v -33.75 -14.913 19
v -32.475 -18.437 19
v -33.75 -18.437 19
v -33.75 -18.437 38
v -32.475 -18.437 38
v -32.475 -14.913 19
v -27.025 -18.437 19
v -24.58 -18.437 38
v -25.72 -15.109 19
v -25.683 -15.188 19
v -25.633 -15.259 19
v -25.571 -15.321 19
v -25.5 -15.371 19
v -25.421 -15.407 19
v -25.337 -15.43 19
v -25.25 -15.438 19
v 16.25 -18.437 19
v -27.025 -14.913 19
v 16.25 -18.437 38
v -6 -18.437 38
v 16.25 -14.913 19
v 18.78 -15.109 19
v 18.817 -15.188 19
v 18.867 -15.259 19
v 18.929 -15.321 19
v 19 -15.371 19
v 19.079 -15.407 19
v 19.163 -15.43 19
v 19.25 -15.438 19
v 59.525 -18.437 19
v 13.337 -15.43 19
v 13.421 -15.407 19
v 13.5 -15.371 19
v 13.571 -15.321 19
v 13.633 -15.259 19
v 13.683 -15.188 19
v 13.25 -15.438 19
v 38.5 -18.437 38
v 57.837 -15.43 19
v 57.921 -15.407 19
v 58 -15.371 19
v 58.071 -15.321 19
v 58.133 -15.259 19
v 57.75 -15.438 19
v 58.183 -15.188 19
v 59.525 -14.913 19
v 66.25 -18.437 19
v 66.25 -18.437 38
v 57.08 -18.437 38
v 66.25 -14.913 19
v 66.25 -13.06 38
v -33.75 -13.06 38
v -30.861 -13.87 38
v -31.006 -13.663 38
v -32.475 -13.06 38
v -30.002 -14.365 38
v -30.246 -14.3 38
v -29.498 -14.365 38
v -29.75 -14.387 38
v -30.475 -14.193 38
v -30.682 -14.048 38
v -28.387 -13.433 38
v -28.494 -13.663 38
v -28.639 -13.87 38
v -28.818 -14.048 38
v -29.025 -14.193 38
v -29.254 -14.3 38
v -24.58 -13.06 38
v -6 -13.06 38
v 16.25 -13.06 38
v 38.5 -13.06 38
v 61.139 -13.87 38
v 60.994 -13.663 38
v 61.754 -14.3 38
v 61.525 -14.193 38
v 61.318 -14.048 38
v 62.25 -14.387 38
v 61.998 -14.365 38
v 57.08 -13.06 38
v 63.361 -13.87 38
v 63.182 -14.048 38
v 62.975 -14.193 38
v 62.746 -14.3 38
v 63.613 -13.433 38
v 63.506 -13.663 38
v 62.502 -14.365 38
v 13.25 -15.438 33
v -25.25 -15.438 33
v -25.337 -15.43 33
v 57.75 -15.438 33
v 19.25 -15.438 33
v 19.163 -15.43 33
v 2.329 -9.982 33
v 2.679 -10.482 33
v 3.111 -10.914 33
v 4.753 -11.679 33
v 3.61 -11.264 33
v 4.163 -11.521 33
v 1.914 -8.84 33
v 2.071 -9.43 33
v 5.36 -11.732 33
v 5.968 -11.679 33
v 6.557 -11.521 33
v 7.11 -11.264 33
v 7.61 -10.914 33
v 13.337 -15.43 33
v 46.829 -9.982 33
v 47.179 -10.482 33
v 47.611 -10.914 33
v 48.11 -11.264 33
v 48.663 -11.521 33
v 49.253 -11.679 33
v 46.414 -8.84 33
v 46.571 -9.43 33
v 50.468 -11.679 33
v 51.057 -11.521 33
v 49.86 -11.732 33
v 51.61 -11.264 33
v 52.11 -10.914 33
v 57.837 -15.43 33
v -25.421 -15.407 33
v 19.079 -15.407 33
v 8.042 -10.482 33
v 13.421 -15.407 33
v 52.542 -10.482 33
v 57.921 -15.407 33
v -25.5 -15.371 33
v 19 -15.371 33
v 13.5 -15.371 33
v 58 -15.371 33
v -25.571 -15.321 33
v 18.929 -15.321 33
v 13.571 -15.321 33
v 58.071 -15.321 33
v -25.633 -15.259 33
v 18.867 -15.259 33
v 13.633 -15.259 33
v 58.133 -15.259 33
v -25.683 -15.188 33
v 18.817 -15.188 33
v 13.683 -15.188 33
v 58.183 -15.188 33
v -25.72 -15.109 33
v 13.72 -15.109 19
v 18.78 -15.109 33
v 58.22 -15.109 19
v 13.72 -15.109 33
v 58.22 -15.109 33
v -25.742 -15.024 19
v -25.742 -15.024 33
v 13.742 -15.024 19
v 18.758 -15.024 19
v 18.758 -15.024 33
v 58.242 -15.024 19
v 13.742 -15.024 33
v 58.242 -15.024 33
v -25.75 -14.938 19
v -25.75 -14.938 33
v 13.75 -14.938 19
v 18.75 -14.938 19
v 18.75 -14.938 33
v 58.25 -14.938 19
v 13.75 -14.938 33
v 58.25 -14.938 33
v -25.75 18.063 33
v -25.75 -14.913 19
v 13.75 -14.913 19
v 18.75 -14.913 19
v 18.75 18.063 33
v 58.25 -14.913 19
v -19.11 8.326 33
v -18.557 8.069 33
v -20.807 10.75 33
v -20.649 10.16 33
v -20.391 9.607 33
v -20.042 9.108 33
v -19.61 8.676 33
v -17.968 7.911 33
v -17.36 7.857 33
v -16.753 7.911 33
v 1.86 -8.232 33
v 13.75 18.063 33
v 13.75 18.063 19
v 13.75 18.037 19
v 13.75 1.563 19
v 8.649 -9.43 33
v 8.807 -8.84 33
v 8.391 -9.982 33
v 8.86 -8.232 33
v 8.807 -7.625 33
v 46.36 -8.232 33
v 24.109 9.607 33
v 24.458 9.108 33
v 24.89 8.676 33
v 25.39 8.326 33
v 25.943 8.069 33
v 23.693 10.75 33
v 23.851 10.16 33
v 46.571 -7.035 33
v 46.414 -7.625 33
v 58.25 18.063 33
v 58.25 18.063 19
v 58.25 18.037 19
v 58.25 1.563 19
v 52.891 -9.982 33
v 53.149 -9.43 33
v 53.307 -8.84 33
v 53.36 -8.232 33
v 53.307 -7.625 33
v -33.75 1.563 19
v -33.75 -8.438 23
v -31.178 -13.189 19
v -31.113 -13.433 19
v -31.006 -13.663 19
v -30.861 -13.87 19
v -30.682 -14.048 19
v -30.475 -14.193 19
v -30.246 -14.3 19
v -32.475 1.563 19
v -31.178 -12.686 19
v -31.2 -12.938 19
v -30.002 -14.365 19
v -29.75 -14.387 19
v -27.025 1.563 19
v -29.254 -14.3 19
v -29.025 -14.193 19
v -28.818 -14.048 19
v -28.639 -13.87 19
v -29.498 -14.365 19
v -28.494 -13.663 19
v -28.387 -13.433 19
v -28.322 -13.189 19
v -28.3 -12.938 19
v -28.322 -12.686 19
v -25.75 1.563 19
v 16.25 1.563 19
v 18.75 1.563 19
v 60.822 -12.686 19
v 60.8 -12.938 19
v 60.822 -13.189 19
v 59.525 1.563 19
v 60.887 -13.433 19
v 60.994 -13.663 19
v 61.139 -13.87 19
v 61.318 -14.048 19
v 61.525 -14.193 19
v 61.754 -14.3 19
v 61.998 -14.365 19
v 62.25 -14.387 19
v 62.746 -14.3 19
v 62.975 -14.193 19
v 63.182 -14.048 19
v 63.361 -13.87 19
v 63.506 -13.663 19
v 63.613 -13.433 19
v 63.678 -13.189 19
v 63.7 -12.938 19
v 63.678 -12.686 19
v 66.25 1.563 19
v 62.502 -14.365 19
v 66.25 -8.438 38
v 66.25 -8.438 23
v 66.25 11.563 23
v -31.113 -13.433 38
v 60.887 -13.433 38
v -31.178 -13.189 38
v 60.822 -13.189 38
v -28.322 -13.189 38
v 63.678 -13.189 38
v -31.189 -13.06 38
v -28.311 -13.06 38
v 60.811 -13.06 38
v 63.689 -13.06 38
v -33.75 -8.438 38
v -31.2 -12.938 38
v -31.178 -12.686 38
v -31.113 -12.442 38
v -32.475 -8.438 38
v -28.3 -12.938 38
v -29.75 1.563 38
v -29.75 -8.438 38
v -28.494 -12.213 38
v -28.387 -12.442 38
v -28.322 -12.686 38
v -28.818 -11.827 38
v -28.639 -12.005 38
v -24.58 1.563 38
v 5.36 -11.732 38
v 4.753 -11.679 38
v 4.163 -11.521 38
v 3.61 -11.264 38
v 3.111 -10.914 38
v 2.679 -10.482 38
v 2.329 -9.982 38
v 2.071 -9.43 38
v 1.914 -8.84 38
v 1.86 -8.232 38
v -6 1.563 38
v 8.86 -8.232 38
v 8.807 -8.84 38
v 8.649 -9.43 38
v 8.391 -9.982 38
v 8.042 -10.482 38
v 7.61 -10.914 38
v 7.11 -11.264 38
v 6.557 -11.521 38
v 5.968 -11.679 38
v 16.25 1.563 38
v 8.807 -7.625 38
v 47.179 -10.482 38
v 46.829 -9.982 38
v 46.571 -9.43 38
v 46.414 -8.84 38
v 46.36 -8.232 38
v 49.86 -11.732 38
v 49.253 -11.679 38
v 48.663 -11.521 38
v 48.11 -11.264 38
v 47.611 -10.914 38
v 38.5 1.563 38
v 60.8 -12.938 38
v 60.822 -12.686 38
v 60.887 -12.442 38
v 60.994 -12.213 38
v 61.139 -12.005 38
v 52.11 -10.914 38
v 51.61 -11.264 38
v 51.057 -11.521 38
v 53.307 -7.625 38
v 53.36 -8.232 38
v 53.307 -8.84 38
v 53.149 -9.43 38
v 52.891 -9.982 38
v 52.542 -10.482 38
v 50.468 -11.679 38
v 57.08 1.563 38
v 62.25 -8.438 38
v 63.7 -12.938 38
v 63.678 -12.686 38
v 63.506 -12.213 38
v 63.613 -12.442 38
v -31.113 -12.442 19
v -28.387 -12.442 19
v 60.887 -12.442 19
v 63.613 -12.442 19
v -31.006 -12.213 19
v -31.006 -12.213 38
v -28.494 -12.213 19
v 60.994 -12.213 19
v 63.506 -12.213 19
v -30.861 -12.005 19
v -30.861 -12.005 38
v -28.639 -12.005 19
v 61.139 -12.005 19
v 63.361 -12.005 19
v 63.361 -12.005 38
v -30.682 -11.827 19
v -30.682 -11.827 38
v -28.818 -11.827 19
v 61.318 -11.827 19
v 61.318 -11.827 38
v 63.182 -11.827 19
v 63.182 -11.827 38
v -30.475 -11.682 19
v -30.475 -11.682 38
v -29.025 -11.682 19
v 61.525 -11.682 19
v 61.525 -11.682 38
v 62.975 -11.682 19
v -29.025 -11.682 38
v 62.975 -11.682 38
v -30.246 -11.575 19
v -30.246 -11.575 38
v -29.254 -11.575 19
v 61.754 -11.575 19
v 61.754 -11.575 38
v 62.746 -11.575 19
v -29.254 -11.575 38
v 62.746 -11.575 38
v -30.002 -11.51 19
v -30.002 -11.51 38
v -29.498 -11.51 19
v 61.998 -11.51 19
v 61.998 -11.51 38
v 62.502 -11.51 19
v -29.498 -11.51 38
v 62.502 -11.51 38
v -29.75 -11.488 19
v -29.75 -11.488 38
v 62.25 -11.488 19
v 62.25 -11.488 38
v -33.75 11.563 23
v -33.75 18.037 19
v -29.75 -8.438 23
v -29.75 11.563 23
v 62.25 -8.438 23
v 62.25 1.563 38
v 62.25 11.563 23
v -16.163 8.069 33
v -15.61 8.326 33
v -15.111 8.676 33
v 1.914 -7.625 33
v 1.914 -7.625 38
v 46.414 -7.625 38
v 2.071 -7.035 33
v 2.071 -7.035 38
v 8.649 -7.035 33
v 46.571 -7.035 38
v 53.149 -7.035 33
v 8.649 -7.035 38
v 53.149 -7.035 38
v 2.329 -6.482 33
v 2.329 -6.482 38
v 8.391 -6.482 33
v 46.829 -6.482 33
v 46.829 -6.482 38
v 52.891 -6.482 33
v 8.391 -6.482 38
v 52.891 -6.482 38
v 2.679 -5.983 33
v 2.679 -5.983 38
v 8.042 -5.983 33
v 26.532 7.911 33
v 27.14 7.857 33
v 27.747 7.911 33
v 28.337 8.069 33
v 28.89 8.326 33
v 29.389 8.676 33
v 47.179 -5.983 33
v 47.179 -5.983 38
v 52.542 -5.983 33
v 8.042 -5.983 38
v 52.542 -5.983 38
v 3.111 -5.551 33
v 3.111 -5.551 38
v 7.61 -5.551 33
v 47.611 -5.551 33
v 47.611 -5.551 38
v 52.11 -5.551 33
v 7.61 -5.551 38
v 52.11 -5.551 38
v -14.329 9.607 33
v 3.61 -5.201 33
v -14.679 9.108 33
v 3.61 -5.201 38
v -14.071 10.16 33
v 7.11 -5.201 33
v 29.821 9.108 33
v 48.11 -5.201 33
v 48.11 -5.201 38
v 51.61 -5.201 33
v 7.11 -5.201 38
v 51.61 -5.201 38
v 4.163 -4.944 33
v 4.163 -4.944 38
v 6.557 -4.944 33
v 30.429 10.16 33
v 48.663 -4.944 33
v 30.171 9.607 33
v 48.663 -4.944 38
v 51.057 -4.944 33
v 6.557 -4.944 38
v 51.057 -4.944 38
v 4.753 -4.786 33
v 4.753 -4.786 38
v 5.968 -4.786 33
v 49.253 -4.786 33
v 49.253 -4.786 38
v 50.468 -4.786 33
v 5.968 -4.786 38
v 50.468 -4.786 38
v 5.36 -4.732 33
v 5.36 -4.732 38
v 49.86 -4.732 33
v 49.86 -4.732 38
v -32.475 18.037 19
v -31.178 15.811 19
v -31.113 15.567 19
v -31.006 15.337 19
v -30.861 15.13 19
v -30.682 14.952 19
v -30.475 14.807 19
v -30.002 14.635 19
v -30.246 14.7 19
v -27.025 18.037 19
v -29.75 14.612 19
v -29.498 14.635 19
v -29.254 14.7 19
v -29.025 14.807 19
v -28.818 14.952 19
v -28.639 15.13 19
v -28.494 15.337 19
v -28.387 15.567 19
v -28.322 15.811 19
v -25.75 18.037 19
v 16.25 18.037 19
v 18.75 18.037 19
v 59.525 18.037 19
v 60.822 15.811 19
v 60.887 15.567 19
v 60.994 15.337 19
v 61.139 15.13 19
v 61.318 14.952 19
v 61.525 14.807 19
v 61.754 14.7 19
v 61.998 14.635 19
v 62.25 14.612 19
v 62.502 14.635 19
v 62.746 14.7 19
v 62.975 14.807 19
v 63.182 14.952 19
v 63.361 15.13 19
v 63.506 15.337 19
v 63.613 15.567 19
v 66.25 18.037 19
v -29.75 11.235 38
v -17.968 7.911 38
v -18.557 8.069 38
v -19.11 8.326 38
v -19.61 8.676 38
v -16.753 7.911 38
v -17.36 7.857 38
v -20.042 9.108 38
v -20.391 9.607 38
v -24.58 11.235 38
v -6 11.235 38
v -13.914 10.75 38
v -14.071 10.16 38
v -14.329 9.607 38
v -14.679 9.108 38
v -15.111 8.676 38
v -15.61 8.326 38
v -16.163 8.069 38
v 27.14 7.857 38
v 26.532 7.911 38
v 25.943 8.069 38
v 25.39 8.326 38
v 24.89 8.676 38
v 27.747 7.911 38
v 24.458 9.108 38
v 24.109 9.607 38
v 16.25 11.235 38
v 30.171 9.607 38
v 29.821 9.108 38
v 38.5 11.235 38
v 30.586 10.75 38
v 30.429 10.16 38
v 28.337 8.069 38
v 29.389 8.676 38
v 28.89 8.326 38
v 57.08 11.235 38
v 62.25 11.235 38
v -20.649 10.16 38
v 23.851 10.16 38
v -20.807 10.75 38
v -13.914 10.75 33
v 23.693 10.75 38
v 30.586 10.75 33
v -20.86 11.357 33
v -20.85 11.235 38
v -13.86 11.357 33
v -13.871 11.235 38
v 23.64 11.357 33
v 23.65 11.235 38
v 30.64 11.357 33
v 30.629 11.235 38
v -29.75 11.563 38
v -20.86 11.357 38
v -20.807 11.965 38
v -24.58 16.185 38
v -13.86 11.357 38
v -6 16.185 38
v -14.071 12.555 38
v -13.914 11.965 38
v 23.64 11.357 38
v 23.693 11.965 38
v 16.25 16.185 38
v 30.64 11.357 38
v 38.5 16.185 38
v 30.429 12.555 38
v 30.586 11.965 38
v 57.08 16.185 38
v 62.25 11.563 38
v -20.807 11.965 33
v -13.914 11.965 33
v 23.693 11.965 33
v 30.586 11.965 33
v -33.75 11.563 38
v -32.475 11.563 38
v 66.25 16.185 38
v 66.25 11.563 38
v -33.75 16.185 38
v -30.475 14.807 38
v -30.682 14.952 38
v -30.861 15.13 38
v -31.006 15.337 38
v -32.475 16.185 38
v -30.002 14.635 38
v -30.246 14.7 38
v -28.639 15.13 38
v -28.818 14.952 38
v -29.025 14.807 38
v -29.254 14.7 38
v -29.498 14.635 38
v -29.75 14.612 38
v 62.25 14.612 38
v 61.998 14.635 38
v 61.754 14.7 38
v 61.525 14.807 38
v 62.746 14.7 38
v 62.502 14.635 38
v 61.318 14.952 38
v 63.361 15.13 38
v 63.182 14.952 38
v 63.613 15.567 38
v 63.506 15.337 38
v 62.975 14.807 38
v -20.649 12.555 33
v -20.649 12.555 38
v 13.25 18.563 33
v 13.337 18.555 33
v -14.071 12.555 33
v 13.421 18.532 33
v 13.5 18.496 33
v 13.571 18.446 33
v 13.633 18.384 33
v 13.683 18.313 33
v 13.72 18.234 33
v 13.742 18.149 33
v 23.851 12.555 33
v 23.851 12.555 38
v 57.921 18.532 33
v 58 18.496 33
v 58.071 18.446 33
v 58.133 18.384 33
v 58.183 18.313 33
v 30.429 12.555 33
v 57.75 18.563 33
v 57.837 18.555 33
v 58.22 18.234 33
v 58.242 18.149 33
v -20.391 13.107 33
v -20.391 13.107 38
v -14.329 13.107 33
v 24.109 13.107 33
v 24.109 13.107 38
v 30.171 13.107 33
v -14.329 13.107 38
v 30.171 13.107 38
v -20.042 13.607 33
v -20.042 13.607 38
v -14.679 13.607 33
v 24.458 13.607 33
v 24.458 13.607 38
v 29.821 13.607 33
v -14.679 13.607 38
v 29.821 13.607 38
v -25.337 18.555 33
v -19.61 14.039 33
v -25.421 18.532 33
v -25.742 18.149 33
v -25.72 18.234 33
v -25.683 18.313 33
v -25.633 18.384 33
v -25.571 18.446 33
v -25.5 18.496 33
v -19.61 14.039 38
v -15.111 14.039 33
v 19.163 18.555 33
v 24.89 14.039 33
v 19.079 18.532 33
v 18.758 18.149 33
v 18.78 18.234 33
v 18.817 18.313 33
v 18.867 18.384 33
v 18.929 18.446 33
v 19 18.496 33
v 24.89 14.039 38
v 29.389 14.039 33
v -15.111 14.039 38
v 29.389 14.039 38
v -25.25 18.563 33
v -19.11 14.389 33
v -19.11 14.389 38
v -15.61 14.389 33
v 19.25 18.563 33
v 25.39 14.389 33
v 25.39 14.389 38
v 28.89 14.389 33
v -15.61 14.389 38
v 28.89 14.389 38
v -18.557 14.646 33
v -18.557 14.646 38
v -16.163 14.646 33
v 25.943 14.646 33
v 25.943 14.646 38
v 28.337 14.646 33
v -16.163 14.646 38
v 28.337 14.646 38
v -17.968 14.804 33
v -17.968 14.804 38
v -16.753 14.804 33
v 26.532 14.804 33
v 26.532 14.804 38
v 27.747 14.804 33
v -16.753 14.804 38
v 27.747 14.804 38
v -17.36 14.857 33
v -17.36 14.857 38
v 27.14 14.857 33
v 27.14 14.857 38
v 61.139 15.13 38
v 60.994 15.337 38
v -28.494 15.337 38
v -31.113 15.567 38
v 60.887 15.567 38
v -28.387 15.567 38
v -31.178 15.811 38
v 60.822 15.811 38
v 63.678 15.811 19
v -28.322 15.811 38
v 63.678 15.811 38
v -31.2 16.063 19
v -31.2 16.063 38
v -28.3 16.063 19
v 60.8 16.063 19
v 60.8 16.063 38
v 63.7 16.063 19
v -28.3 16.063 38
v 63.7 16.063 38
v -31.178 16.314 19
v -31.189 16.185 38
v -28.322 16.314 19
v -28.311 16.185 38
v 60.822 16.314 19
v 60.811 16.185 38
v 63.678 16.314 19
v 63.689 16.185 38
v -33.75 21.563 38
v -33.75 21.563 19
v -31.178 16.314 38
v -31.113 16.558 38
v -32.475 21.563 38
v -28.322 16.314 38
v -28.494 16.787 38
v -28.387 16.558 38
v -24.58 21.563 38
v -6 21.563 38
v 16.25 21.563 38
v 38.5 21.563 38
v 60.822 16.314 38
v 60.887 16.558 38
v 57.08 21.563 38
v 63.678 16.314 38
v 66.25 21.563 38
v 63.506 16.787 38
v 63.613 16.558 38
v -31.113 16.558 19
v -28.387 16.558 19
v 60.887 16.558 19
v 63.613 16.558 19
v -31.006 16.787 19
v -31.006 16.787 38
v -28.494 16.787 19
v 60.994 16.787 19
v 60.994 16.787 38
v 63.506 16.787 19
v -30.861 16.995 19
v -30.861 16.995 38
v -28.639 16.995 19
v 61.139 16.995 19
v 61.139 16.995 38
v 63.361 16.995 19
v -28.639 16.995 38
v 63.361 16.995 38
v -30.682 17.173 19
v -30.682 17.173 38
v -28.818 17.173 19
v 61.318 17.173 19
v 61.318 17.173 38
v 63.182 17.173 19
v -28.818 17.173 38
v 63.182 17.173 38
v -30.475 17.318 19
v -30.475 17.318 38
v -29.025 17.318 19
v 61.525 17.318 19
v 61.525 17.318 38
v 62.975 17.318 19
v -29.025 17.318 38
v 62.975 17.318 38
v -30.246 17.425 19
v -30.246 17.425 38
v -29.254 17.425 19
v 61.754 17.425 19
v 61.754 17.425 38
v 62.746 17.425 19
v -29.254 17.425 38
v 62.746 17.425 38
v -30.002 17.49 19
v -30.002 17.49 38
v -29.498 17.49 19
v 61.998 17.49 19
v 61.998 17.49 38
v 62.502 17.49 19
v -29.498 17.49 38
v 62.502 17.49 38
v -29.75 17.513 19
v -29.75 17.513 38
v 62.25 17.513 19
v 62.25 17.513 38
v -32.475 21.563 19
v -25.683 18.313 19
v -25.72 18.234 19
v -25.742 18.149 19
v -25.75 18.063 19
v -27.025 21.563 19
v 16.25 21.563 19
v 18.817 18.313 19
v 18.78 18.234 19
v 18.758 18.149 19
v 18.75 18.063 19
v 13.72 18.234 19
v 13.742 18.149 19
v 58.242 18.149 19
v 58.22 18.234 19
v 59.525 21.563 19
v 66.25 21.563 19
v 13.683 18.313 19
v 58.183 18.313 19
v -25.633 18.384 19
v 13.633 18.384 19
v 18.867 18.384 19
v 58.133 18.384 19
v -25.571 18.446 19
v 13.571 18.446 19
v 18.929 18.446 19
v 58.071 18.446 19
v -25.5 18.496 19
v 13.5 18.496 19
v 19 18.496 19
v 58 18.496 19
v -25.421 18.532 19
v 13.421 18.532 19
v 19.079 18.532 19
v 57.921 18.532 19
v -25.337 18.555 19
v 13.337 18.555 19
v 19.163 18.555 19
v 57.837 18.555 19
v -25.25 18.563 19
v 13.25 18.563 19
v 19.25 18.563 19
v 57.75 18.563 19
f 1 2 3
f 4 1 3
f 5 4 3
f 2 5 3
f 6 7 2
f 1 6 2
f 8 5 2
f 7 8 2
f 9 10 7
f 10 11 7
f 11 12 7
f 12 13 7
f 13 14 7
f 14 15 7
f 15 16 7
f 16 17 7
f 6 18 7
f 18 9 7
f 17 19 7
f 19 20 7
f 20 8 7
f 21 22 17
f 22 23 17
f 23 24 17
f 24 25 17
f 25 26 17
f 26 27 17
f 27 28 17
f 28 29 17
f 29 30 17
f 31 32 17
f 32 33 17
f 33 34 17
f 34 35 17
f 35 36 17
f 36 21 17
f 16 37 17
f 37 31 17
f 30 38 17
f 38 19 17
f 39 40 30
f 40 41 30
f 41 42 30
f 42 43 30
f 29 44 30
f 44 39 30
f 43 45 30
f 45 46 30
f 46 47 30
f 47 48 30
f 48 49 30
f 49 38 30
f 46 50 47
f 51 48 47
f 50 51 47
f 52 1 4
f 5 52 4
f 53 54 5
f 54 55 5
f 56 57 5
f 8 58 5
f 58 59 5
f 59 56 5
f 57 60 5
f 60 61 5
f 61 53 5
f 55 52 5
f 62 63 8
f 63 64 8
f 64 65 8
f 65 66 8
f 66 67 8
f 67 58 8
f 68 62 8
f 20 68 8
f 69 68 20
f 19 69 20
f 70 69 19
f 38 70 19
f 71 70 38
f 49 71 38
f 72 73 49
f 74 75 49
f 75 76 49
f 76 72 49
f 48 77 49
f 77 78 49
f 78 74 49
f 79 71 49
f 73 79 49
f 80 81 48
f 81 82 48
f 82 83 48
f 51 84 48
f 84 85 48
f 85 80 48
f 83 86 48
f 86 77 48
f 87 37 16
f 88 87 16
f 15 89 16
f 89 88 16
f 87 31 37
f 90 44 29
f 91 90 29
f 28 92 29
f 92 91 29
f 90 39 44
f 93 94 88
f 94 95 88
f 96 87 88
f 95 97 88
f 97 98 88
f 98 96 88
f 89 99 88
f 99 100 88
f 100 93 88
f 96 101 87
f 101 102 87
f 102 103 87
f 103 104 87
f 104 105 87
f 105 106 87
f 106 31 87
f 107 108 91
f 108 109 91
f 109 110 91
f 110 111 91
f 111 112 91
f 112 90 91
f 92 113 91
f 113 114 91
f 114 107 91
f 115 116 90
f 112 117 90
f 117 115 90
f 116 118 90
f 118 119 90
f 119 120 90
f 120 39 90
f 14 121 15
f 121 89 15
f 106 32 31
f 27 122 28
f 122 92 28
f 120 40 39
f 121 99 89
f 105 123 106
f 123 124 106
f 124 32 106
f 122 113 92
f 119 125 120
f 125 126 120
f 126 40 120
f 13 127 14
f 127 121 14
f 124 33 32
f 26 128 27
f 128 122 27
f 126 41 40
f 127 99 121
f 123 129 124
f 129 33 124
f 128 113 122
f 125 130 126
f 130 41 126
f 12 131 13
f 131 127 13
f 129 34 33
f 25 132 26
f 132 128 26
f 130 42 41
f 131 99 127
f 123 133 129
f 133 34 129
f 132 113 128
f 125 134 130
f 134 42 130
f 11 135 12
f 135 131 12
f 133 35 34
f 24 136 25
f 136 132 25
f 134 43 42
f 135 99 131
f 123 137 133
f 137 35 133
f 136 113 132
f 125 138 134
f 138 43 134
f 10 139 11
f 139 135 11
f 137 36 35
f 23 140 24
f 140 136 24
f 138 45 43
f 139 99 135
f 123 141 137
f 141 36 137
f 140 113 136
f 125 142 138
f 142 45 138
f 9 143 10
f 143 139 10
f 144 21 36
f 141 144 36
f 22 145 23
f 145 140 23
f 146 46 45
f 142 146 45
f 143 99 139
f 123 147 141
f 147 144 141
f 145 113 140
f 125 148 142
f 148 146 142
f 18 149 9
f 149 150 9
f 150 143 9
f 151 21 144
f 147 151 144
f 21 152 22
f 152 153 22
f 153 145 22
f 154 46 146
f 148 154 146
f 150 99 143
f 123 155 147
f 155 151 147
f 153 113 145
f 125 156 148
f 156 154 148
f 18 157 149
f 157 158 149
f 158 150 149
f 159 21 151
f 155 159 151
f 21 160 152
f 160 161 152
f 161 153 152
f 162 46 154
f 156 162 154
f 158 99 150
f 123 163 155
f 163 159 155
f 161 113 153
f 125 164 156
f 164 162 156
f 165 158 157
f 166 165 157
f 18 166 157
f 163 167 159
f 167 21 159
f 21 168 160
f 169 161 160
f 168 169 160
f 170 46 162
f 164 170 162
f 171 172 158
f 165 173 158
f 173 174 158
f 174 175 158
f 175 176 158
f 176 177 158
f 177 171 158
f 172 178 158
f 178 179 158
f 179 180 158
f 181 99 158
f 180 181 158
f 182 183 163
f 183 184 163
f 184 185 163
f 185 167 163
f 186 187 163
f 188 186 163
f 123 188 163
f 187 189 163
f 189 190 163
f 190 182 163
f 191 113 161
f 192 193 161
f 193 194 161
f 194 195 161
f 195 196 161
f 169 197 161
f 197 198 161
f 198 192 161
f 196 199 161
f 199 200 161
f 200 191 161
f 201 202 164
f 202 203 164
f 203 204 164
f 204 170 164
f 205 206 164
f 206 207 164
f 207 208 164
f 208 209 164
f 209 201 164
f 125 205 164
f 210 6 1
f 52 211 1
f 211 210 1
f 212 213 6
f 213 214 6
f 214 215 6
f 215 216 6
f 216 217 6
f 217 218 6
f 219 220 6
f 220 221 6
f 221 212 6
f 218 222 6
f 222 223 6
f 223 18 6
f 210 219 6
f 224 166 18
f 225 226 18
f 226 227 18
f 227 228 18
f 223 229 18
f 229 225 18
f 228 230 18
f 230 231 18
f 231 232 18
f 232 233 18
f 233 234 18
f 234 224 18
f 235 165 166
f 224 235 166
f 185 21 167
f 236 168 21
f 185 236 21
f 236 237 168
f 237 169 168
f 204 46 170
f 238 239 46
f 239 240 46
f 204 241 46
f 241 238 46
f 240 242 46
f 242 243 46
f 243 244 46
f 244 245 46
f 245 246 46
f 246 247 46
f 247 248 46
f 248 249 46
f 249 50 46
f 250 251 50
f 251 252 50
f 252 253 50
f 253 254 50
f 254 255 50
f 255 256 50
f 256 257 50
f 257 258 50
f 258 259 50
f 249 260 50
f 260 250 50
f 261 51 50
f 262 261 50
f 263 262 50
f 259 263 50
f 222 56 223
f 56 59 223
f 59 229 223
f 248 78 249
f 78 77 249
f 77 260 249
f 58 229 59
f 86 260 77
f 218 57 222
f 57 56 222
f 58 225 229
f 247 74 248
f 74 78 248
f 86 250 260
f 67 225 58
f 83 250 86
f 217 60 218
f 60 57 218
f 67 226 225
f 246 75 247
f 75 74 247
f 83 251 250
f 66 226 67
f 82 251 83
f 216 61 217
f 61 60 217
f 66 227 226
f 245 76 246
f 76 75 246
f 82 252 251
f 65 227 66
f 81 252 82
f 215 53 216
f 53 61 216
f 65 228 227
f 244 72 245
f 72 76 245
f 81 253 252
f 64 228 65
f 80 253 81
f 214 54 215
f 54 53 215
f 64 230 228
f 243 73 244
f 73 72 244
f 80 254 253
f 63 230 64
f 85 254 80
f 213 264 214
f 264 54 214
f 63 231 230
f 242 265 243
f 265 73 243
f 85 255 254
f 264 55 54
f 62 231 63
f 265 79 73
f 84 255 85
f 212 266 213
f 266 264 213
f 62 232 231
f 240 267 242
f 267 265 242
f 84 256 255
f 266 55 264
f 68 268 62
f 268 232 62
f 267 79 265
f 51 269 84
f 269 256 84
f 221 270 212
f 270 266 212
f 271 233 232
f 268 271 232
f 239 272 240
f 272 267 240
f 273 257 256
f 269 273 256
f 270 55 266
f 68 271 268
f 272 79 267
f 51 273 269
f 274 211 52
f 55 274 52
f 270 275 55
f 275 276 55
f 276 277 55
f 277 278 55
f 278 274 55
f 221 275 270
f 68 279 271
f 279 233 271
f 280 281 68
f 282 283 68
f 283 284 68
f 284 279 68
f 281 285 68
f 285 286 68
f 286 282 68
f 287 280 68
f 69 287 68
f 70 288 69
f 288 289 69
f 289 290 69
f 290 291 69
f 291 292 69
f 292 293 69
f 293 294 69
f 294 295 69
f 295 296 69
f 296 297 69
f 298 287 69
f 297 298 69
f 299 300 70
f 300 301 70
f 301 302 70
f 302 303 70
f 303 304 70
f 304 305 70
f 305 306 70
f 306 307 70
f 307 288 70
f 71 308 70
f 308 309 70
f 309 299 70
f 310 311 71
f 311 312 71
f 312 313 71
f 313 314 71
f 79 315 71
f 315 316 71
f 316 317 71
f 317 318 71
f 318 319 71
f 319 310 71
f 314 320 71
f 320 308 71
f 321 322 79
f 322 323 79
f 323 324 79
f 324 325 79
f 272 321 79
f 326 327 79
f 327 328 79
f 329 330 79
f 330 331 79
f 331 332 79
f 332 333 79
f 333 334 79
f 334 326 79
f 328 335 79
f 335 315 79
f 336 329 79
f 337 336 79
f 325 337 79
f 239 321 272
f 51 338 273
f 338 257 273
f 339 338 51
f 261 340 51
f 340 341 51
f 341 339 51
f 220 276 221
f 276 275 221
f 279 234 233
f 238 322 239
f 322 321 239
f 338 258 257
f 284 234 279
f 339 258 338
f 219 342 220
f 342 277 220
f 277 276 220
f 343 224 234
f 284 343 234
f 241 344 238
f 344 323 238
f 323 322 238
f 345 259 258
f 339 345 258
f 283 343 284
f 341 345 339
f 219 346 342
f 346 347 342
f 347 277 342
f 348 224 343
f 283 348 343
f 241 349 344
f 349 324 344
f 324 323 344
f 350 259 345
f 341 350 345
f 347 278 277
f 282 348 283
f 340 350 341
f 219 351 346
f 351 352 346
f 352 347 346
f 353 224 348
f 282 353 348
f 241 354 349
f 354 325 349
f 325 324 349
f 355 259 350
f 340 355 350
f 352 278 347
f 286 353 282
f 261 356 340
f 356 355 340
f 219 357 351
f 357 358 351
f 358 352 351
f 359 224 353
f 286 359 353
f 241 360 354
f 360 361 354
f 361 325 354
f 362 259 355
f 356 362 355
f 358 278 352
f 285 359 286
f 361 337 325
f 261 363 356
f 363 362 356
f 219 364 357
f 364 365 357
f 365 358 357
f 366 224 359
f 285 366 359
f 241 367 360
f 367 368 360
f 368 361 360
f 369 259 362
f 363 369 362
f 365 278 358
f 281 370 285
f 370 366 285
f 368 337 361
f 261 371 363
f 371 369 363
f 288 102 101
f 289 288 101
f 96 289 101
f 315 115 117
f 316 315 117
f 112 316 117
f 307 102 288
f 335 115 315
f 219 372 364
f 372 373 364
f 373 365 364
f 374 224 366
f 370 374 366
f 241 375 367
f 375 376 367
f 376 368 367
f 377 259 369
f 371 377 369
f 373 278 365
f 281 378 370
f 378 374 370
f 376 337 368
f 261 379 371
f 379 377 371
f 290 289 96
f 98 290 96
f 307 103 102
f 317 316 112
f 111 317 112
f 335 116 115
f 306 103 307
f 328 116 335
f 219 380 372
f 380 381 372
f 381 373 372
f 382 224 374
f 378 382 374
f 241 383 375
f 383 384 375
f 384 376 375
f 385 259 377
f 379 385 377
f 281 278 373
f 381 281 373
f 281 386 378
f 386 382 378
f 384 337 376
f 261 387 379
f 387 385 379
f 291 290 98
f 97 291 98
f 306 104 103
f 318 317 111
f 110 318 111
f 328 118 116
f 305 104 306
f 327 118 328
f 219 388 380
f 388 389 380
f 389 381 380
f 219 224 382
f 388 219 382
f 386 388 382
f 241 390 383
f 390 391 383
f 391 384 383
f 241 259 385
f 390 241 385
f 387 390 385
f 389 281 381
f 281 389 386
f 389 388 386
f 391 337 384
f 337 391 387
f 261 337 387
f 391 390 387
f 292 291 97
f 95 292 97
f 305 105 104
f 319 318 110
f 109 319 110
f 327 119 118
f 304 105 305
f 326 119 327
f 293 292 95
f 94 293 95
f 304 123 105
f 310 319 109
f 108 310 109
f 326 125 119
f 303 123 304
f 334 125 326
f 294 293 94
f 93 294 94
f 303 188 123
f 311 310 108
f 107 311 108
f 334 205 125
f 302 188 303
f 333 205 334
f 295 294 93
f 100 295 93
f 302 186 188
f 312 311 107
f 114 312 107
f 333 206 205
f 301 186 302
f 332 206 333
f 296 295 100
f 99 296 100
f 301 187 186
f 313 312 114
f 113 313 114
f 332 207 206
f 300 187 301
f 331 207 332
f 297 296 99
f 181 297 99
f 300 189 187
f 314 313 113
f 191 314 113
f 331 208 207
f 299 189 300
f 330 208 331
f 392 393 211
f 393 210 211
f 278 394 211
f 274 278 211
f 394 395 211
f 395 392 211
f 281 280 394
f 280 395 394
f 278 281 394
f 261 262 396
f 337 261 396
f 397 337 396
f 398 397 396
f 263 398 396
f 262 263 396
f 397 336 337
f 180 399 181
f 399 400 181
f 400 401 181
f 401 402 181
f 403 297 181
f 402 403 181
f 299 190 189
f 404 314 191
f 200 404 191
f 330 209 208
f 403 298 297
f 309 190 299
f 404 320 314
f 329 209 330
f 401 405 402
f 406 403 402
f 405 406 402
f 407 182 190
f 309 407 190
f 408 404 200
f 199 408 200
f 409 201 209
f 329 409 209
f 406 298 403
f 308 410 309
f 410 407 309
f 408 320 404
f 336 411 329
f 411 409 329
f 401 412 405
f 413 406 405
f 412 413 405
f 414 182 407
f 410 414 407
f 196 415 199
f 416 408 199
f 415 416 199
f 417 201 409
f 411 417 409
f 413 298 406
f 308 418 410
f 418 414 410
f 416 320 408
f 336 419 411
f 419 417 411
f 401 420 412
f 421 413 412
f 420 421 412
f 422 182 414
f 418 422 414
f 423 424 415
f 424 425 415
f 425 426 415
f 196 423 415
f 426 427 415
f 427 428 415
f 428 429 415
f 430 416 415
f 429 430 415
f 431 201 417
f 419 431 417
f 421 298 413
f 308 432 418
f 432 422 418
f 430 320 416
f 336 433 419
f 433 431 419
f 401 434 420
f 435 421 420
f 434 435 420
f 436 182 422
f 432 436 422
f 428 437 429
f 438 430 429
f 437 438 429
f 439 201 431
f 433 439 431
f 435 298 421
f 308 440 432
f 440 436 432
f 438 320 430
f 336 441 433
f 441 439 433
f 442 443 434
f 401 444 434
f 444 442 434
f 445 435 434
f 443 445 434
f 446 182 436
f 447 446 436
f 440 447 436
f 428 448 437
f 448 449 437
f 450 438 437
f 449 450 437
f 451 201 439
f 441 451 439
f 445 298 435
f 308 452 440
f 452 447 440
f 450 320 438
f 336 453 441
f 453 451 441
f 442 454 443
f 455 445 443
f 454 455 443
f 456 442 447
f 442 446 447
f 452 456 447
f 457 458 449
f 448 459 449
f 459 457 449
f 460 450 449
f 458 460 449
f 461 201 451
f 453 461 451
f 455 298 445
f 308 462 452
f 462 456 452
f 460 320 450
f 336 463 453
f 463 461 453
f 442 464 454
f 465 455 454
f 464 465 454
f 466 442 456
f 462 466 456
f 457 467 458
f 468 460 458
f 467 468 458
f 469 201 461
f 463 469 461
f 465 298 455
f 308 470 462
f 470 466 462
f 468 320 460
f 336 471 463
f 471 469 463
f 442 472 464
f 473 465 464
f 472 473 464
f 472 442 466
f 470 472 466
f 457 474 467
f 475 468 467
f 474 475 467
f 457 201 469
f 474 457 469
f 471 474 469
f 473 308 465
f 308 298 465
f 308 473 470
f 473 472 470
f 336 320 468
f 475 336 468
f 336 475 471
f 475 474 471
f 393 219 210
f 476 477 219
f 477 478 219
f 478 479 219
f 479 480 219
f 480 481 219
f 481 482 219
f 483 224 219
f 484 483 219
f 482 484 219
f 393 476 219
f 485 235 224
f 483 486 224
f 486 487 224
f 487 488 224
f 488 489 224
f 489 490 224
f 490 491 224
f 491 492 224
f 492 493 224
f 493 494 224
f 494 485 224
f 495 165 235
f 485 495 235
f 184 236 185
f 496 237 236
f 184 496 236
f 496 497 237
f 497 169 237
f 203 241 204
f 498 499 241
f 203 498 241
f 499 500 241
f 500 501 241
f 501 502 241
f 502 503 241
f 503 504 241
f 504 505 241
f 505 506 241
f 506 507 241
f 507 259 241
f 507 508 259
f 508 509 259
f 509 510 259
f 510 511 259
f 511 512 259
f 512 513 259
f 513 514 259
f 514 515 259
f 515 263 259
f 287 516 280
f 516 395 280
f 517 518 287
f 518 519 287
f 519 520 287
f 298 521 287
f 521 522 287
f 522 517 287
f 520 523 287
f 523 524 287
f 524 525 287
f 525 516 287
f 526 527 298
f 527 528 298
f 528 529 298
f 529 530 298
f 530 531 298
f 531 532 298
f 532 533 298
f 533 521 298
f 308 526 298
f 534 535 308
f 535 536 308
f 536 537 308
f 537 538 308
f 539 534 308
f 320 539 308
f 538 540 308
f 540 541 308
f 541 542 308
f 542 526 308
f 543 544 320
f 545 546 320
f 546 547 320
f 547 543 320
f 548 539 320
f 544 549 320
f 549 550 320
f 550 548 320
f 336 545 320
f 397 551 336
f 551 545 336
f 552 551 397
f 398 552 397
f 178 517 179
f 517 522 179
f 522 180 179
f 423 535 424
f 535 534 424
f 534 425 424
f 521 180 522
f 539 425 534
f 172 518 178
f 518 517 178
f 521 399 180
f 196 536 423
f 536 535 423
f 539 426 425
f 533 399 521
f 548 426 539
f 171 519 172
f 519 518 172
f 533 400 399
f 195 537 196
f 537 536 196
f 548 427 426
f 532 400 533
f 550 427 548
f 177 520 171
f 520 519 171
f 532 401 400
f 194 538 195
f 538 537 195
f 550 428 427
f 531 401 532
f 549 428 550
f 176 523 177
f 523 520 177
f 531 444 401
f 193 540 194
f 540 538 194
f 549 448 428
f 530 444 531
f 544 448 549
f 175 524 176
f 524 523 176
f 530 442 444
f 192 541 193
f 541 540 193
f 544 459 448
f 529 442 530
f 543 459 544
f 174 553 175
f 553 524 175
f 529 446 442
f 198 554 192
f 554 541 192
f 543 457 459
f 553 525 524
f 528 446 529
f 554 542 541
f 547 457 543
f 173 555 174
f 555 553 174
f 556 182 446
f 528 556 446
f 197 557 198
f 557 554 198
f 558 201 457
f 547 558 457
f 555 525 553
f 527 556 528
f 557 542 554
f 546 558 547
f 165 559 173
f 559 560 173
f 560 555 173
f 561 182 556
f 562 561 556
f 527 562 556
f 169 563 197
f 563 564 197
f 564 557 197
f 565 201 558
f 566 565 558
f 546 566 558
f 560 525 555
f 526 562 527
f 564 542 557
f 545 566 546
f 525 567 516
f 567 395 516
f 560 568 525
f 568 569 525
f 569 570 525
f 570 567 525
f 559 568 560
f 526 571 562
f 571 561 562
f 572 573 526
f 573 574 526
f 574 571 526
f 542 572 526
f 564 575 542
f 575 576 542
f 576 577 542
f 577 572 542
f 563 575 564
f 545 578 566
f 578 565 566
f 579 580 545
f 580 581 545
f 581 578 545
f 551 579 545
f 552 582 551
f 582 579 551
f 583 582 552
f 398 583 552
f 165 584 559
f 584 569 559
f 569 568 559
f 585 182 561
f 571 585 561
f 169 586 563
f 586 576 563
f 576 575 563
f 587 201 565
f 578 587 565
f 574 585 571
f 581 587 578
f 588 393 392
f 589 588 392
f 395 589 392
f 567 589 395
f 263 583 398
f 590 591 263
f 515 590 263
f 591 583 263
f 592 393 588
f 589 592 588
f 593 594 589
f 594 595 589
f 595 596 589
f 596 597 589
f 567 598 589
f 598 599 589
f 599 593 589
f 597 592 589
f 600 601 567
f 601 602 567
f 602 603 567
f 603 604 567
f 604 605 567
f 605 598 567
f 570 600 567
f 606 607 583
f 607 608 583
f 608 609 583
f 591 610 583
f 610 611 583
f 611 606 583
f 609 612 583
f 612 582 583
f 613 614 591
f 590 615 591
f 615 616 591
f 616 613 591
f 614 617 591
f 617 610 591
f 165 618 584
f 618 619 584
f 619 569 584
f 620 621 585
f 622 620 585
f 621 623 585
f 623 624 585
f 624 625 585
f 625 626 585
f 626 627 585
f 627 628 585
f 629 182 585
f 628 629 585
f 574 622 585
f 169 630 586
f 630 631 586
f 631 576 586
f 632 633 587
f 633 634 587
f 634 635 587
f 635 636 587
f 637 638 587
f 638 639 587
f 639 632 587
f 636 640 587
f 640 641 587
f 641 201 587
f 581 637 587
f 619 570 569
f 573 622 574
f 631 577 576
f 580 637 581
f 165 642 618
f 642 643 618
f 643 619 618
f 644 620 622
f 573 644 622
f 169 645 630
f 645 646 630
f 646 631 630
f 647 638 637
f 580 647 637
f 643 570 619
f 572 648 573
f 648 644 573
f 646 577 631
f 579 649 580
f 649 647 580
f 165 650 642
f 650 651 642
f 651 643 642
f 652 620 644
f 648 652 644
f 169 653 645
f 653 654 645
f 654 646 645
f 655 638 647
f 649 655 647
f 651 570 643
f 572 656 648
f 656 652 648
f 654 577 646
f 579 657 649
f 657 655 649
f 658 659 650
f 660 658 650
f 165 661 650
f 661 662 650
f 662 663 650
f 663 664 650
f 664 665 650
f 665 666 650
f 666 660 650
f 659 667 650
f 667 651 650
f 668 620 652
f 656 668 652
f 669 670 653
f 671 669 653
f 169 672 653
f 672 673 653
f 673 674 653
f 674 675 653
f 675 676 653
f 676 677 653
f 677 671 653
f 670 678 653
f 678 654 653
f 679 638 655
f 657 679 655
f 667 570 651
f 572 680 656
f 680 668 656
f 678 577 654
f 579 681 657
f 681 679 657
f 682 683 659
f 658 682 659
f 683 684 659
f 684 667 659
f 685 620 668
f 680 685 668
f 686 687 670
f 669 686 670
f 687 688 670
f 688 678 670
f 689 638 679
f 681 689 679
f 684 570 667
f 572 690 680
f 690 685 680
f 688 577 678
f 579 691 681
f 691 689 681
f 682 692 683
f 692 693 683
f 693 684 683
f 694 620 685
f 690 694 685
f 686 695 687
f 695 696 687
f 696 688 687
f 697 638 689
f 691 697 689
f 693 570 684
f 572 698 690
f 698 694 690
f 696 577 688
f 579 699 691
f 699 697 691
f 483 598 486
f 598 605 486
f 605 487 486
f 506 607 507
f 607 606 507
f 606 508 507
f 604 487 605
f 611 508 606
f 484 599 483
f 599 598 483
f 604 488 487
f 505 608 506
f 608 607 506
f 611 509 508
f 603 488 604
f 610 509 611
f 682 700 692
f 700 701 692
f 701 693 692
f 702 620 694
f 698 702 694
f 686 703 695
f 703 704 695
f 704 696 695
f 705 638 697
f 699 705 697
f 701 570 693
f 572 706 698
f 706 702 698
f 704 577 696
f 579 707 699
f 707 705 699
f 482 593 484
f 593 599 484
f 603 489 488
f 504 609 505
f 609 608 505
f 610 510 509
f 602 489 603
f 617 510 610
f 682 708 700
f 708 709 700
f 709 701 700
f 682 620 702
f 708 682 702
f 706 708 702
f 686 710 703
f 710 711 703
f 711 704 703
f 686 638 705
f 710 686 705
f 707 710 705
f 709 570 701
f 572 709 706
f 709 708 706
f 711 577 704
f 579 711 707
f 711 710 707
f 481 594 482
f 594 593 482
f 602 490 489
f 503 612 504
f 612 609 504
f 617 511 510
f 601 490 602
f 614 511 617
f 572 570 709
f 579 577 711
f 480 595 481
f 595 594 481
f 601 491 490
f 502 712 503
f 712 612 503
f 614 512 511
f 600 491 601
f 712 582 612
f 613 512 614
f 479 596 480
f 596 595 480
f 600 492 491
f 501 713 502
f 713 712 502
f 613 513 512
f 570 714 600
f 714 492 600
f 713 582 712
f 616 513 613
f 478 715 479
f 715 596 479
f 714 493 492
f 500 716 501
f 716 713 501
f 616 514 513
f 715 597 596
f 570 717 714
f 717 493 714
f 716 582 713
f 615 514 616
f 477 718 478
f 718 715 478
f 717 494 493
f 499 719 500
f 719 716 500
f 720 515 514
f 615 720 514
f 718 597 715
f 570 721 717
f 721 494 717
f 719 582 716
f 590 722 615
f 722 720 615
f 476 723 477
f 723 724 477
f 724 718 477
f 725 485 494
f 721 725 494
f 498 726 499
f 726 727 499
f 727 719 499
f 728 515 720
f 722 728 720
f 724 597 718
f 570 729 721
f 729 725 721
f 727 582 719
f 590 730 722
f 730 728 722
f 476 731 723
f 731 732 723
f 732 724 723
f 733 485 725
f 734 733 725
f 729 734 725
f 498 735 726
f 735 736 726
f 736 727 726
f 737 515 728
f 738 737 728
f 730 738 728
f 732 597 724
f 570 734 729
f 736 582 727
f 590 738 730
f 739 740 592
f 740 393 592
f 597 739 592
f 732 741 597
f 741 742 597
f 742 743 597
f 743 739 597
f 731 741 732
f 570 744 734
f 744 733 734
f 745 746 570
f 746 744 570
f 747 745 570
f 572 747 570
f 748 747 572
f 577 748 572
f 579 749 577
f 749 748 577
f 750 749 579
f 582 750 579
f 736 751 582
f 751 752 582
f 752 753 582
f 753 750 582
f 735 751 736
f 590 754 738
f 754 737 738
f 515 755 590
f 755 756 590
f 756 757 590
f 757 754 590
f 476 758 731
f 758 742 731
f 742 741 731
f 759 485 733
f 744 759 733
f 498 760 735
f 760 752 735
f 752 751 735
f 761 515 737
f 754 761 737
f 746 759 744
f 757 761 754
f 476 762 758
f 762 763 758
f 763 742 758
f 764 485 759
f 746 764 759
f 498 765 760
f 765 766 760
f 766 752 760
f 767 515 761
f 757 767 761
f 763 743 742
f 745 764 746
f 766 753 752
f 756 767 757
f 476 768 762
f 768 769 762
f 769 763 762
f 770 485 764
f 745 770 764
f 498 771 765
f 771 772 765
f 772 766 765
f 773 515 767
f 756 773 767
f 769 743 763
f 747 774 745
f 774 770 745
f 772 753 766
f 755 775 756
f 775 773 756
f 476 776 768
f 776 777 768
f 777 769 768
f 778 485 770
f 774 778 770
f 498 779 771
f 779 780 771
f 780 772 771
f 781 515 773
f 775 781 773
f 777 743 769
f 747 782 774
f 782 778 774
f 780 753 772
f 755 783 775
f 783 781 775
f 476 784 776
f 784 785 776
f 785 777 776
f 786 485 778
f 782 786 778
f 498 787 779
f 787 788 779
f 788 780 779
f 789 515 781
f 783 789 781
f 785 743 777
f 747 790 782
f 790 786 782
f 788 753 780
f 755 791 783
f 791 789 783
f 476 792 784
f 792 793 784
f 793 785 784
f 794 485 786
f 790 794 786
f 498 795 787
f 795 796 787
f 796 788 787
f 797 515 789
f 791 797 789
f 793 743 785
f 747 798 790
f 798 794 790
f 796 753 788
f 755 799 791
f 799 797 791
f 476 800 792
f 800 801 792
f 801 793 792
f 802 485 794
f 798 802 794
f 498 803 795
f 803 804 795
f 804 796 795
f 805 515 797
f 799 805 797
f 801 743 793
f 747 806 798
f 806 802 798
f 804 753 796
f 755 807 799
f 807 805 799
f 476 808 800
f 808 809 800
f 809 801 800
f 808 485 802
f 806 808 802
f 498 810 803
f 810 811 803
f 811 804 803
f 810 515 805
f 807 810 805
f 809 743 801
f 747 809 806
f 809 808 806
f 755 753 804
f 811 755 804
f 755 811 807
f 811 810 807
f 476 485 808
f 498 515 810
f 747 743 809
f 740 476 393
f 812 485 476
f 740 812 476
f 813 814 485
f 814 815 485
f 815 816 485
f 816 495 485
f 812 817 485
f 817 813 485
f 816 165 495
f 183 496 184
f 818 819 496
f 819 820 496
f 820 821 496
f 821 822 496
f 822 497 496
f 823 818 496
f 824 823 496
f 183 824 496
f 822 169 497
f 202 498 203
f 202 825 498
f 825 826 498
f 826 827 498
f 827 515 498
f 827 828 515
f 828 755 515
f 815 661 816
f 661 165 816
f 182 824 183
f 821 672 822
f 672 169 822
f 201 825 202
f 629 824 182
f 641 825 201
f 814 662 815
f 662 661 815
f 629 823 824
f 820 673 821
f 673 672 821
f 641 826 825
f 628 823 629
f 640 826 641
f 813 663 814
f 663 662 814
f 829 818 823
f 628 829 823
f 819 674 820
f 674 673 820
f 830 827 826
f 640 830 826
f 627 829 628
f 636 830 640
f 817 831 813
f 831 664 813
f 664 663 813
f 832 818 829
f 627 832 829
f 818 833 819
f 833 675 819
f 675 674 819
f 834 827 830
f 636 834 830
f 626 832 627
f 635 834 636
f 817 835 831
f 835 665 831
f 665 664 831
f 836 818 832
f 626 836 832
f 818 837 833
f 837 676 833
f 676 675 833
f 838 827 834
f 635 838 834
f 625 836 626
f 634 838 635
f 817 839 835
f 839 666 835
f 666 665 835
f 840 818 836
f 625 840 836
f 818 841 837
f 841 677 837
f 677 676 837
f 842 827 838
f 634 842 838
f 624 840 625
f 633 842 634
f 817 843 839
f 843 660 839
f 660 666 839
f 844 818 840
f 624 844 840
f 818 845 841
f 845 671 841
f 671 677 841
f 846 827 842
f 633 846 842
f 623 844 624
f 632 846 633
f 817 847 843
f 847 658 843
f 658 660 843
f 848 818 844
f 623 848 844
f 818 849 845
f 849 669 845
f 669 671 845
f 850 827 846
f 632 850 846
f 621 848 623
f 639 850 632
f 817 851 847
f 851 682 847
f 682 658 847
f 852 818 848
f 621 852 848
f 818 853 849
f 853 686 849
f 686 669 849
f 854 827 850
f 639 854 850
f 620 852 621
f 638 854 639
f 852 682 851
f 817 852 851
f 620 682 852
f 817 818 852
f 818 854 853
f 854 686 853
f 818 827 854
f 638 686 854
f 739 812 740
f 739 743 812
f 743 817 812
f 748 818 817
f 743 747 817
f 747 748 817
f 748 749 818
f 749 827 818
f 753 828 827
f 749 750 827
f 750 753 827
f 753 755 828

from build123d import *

# Parameters (mm, degrees)
SKETCH1_W           = 100
SKETCH1_H           = 40
BOSS_EXTRUDE1_DEPTH = 38
CUT_EXTRUDE2_START  = -12
SKETCH2_W           = 39.5
SKETCH2_H           = 34
CUT_EXTRUDE2_DEPTH  = 21
CUT_EXTRUDE3_DEPTH  = 9
CUT_EXTRUDE4_REACH  = 81.36
SKETCH4_R           = 1.45
SKETCH5_W           = 100
SKETCH5_H           = 19
CUT_EXTRUDE5_DEPTH  = 87.215210375
FILLET1_R           = 0.5
CUT_EXTRUDE11_REACH = 73.063
SKETCH10_R          = 3.5
SKETCH11_W          = 4
SKETCH11_H          = 20
CUT_EXTRUDE12_DEPTH = 15


with BuildPart() as part:
    # Sketch1 → Boss-Extrude1 (new body)
    with BuildSketch(Plane.XY):
        with Locations((16.25, 1.5625)):
            Rectangle(SKETCH1_W, SKETCH1_H)
    extrude(amount=BOSS_EXTRUDE1_DEPTH)

    # Sketch2 → Cut-Extrude2 (cut)
    with BuildSketch(Plane(origin=(0, 0, 0), x_dir=(-1, 0, 0), z_dir=(0, 0, -1)).offset(CUT_EXTRUDE2_START)):
        with Locations((-38.5, 1.5625)):
            Rectangle(SKETCH2_W, SKETCH2_H)
        with Locations((6, 1.5625)):
            Rectangle(SKETCH2_W, SKETCH2_H)
    extrude(amount=-CUT_EXTRUDE2_DEPTH, mode=Mode.SUBTRACT)

    # Sketch3 → Cut-Extrude3 (cut)
    with BuildSketch(Plane(origin=(-3.362318072, 0, 0), x_dir=(-1, 0, 0), z_dir=(0, 0, -1))):
        with BuildLine():
            ThreePointArc((-61.593370612, 1.614325749), (-20.676836723, -17.421621422), (21.715969185, -1.949710178))
            ThreePointArc((21.715969185, -1.949710178), (22.204299442, 9.465009595), (10.78957967, 9.953339852))
            ThreePointArc((10.78957967, 9.953339852), (-19.986233449, -1.278769909), (-49.690320582, 12.540715264))
            ThreePointArc((-49.690320582, 12.540715264), (-61.105040355, 13.029045522), (-61.593370612, 1.614325749))
        make_face()
    extrude(amount=-CUT_EXTRUDE3_DEPTH, mode=Mode.SUBTRACT)

    # Sketch4 → Cut-Extrude4 (cut, up to next)
    with BuildSketch(Plane(origin=(0, 0, 0), x_dir=(-1, 0, 0), z_dir=(0, 0, -1)), mode=Mode.PRIVATE) as cut_extrude4_sk1:
        with Locations((-62.25, 16.0625)):
            Circle(SKETCH4_R)
    cut_extrude4_tool1 = extrude(cut_extrude4_sk1.sketch, amount=-CUT_EXTRUDE4_REACH, mode=Mode.PRIVATE) & part.part
    # Sketch4 → Cut-Extrude4 (cut, up to next)
    with BuildSketch(Plane(origin=(0, 0, 0), x_dir=(-1, 0, 0), z_dir=(0, 0, -1)), mode=Mode.PRIVATE) as cut_extrude4_sk2:
        with Locations((-62.25, -12.9375)):
            Circle(SKETCH4_R)
    cut_extrude4_tool2 = extrude(cut_extrude4_sk2.sketch, amount=-CUT_EXTRUDE4_REACH, mode=Mode.PRIVATE) & part.part
    # Sketch4 → Cut-Extrude4 (cut, up to next)
    with BuildSketch(Plane(origin=(0, 0, 0), x_dir=(-1, 0, 0), z_dir=(0, 0, -1)), mode=Mode.PRIVATE) as cut_extrude4_sk3:
        with Locations((29.75, 16.0625)):
            Circle(SKETCH4_R)
    cut_extrude4_tool3 = extrude(cut_extrude4_sk3.sketch, amount=-CUT_EXTRUDE4_REACH, mode=Mode.PRIVATE) & part.part
    # Sketch4 → Cut-Extrude4 (cut, up to next)
    with BuildSketch(Plane(origin=(0, 0, 0), x_dir=(-1, 0, 0), z_dir=(0, 0, -1)), mode=Mode.PRIVATE) as cut_extrude4_sk4:
        with Locations((29.75, -12.9375)):
            Circle(SKETCH4_R)
    cut_extrude4_tool4 = extrude(cut_extrude4_sk4.sketch, amount=-CUT_EXTRUDE4_REACH, mode=Mode.PRIVATE) & part.part
    add(cut_extrude4_tool1.solids().sort_by_distance((62.25, 16.0625, 0))[0], mode=Mode.SUBTRACT)
    add(cut_extrude4_tool2.solids().sort_by_distance((62.25, -12.9375, 0))[0], mode=Mode.SUBTRACT)
    add(cut_extrude4_tool3.solids().sort_by_distance((-29.75, 16.0625, 0))[0], mode=Mode.SUBTRACT)
    add(cut_extrude4_tool4.solids().sort_by_distance((-29.75, -12.9375, 0))[0], mode=Mode.SUBTRACT)

    # Sketch5 → Cut-Extrude5 (cut, through all)
    with BuildSketch(Plane(origin=(0, 21.5625, 0), x_dir=(1, 0, 0), z_dir=(0, 1, 0))):
        with Locations((16.25, -9.5)):
            Rectangle(SKETCH5_W, SKETCH5_H)
    extrude(amount=-CUT_EXTRUDE5_DEPTH, mode=Mode.SUBTRACT)

    # Fillet1
    fillet1_edges = [part.edges().sort_by_distance(p)[0] for p in [
        (58.25, 18.5625, 26),
        (18.75, 18.5625, 26),
        (18.75, -15.4375, 26),
        (58.25, -15.4375, 26),
        (13.75, 18.5625, 26),
        (-25.75, 18.5625, 26),
        (-25.75, -15.4375, 26),
        (13.75, -15.4375, 26),
    ]]
    fillet(fillet1_edges, radius=FILLET1_R)

    # Sketch10 → Cut-Extrude11 (cut, up to next)
    with BuildSketch(Plane(origin=(0, 0, 33), x_dir=(-1, 0, 0), z_dir=(0, 0, -1)), mode=Mode.PRIVATE) as cut_extrude11_sk1:
        with Locations((-49.860388068, -8.232477434)):
            Circle(SKETCH10_R)
    cut_extrude11_tool1 = extrude(cut_extrude11_sk1.sketch, amount=-CUT_EXTRUDE11_REACH, mode=Mode.PRIVATE) & part.part
    # Sketch10 → Cut-Extrude11 (cut, up to next)
    with BuildSketch(Plane(origin=(0, 0, 33), x_dir=(-1, 0, 0), z_dir=(0, 0, -1)), mode=Mode.PRIVATE) as cut_extrude11_sk2:
        with Locations((-27.139611932, 11.357477434)):
            Circle(SKETCH10_R)
    cut_extrude11_tool2 = extrude(cut_extrude11_sk2.sketch, amount=-CUT_EXTRUDE11_REACH, mode=Mode.PRIVATE) & part.part
    # Sketch10 → Cut-Extrude11 (cut, up to next)
    with BuildSketch(Plane(origin=(0, 0, 33), x_dir=(-1, 0, 0), z_dir=(0, 0, -1)), mode=Mode.PRIVATE) as cut_extrude11_sk3:
        with Locations((-5.360388068, -8.232477434)):
            Circle(SKETCH10_R)
    cut_extrude11_tool3 = extrude(cut_extrude11_sk3.sketch, amount=-CUT_EXTRUDE11_REACH, mode=Mode.PRIVATE) & part.part
    # Sketch10 → Cut-Extrude11 (cut, up to next)
    with BuildSketch(Plane(origin=(0, 0, 33), x_dir=(-1, 0, 0), z_dir=(0, 0, -1)), mode=Mode.PRIVATE) as cut_extrude11_sk4:
        with Locations((17.360388068, 11.357477434)):
            Circle(SKETCH10_R)
    cut_extrude11_tool4 = extrude(cut_extrude11_sk4.sketch, amount=-CUT_EXTRUDE11_REACH, mode=Mode.PRIVATE) & part.part
    add(cut_extrude11_tool1.solids().sort_by_distance((49.860388, -8.232477, 33))[0], mode=Mode.SUBTRACT)
    add(cut_extrude11_tool2.solids().sort_by_distance((27.139612, 11.357477, 33))[0], mode=Mode.SUBTRACT)
    add(cut_extrude11_tool3.solids().sort_by_distance((5.360388, -8.232477, 33))[0], mode=Mode.SUBTRACT)
    add(cut_extrude11_tool4.solids().sort_by_distance((-17.360388, 11.357477, 33))[0], mode=Mode.SUBTRACT)

    # Sketch11 → Cut-Extrude12 (cut)
    with BuildSketch(Plane.XY.offset(38)):
        with Locations((-31.75, 1.5625)):
            Rectangle(SKETCH11_W, SKETCH11_H)
        with Locations((64.25, 1.5625)):
            Rectangle(SKETCH11_W, SKETCH11_H)
    extrude(amount=-CUT_EXTRUDE12_DEPTH, mode=Mode.SUBTRACT)


solid = part.part
